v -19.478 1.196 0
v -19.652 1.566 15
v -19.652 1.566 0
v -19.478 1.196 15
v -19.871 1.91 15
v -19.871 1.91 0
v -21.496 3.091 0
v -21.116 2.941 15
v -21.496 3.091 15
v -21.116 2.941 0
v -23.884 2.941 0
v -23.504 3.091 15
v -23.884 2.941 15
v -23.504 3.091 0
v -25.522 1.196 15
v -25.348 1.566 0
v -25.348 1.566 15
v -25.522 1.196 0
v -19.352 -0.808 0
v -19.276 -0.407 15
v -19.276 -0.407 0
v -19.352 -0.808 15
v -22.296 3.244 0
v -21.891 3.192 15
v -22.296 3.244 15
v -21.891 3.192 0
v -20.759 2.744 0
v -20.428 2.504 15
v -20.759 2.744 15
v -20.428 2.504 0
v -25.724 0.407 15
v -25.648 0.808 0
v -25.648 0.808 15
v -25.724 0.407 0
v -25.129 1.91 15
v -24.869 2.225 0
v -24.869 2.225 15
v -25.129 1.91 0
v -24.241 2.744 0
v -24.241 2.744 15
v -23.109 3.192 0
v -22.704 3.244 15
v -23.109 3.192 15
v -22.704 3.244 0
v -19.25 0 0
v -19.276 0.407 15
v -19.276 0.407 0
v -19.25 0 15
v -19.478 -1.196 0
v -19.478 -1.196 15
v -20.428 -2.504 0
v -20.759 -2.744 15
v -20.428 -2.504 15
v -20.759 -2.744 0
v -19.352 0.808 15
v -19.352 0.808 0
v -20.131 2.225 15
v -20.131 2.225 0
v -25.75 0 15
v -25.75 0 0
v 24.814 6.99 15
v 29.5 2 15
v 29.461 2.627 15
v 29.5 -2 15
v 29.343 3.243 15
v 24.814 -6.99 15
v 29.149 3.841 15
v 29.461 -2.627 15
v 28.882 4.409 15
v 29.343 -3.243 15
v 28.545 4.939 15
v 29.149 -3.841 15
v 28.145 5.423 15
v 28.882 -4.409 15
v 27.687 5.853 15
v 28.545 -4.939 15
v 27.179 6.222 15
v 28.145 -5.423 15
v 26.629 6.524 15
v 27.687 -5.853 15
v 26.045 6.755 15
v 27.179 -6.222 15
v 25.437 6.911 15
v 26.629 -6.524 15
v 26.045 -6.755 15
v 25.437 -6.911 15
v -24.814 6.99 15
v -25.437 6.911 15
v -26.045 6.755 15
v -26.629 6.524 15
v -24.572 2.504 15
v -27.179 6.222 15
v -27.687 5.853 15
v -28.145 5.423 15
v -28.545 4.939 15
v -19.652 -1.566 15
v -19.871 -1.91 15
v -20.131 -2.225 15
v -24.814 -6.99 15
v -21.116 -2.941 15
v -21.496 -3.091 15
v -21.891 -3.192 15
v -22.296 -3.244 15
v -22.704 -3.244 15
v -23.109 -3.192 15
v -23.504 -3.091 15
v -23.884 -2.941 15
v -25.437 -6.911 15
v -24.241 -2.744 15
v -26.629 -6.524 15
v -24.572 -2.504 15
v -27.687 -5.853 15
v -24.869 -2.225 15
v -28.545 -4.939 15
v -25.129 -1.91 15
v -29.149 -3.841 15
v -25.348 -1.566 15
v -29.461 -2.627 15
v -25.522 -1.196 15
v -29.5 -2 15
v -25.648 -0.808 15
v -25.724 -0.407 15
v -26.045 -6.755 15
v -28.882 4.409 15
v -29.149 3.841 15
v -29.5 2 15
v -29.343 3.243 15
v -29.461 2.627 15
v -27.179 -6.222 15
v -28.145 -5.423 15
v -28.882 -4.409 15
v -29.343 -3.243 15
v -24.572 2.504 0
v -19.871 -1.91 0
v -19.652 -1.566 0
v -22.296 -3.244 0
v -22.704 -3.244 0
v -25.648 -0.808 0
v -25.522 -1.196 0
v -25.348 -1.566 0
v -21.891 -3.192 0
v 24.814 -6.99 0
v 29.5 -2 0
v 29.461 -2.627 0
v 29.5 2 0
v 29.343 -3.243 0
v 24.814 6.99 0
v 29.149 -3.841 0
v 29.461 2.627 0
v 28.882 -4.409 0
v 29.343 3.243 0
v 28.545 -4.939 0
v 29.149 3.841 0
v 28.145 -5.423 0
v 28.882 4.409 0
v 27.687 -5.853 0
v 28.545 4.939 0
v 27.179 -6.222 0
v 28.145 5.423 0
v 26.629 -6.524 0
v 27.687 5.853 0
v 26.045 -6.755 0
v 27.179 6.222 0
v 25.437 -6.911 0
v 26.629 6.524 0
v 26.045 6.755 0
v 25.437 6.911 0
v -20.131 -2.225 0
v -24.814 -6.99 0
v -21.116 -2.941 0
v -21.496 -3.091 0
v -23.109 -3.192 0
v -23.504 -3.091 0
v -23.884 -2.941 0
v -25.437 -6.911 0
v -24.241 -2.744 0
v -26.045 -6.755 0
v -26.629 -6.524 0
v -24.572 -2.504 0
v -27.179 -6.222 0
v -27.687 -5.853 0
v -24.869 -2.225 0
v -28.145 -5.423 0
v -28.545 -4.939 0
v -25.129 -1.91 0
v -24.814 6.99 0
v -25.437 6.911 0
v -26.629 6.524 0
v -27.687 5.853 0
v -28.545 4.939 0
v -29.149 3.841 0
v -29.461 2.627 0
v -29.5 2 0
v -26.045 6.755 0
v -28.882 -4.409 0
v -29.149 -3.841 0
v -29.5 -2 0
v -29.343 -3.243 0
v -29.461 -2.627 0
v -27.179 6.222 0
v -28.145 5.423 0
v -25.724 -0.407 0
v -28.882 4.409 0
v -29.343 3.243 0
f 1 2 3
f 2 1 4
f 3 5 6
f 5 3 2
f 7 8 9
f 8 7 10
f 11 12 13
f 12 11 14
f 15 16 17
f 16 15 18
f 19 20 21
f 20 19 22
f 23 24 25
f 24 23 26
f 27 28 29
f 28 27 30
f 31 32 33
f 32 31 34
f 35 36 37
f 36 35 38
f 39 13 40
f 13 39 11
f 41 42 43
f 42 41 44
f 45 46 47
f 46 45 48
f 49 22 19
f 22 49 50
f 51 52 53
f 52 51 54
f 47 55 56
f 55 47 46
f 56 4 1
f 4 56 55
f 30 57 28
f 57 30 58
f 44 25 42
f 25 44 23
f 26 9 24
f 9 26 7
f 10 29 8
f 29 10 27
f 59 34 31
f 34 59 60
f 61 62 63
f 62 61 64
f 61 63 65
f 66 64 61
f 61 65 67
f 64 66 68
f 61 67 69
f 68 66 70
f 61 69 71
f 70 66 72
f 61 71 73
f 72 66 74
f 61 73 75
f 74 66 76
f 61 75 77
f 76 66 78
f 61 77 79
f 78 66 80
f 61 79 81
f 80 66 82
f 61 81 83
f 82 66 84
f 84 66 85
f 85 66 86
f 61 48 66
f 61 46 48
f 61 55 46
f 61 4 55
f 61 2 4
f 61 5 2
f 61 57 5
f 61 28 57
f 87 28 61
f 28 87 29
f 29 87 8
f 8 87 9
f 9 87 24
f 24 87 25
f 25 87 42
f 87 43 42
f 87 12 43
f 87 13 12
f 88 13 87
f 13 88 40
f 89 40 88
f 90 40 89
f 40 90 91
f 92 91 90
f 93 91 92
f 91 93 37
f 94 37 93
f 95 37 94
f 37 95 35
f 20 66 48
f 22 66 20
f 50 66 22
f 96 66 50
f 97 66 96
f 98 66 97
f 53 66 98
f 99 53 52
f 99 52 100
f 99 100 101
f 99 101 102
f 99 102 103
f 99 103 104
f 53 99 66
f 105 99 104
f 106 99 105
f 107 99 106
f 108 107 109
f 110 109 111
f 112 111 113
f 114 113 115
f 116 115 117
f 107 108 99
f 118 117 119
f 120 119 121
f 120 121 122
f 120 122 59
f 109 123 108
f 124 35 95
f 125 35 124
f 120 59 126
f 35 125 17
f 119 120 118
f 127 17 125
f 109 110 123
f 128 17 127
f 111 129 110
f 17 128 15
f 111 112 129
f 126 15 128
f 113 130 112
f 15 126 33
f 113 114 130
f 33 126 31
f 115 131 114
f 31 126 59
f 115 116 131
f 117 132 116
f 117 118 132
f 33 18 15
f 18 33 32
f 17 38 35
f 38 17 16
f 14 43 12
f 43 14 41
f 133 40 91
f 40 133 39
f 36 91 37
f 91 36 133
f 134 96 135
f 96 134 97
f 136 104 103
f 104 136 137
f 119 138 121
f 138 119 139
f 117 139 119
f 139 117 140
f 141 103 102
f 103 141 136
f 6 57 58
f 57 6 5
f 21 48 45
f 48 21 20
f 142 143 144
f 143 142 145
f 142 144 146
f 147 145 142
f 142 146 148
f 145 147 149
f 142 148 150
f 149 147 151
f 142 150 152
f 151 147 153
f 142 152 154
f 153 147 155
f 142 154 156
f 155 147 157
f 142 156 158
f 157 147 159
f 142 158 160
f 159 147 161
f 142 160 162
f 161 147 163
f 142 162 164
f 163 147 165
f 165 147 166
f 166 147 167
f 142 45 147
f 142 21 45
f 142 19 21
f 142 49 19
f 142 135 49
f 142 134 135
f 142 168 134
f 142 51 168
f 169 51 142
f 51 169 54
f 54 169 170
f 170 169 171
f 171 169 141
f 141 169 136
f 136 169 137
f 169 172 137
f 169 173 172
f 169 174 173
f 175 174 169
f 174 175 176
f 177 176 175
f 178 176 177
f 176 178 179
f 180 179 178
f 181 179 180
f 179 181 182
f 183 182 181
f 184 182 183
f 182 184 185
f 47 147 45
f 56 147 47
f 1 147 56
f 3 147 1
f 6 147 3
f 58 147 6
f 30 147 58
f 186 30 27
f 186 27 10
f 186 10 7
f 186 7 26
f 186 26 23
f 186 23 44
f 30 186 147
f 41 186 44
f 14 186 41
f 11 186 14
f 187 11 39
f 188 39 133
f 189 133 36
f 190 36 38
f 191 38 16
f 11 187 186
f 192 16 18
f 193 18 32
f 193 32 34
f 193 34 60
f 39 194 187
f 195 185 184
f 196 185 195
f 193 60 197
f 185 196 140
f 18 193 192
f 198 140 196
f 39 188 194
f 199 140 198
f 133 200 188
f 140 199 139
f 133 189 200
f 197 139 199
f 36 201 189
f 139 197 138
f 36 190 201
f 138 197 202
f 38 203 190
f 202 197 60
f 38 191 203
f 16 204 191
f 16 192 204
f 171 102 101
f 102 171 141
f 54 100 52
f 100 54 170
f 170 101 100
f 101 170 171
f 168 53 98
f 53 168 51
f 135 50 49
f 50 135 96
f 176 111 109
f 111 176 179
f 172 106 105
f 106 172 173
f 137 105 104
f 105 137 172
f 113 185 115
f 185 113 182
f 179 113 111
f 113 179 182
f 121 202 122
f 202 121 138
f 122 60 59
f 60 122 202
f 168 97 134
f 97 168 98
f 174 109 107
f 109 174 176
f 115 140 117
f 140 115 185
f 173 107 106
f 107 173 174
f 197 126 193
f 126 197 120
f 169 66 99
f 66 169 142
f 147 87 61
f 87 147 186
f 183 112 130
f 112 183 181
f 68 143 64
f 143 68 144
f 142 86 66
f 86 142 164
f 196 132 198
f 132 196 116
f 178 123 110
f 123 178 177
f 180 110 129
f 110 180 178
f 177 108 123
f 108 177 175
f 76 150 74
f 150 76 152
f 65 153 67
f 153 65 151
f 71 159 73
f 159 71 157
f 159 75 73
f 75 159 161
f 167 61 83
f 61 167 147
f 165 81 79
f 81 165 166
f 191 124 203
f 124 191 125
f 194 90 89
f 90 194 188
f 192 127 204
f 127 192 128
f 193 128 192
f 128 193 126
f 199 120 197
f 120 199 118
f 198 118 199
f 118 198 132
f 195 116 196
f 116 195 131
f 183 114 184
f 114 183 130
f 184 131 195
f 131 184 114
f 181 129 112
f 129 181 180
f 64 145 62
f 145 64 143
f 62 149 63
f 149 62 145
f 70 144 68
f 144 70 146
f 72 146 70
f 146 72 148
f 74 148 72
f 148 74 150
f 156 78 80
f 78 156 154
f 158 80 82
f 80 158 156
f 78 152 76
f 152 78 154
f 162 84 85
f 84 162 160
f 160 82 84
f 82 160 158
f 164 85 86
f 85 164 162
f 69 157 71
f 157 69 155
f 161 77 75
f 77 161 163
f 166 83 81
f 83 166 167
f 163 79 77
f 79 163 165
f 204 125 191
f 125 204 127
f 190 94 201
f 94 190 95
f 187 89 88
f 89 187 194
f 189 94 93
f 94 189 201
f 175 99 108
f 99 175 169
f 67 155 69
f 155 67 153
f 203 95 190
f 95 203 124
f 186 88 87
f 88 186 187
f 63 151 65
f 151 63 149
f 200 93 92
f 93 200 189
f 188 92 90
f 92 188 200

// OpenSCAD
$fn = 50;


difference() {
	union() {
		hull() {
			translate(v = [-24.5000000000, 2.0000000000, 0]) {
				cylinder(h = 15, r = 5);
			}
			translate(v = [24.5000000000, 2.0000000000, 0]) {
				cylinder(h = 15, r = 5);
			}
			translate(v = [-24.5000000000, -2.0000000000, 0]) {
				cylinder(h = 15, r = 5);
			}
			translate(v = [24.5000000000, -2.0000000000, 0]) {
				cylinder(h = 15, r = 5);
			}
		}
	}
	union() {
		translate(v = [-22.5000000000, 0.0000000000, 0]) {
			cylinder(h = 15, r = 3.2500000000);
		}
		translate(v = [-22.5000000000, 0.0000000000, 0]) {
			cylinder(h = 15, r = 1.8000000000);
		}
		translate(v = [-22.5000000000, 0.0000000000, 0]) {
			cylinder(h = 15, r = 1.8000000000);
		}
		translate(v = [-22.5000000000, 0.0000000000, 0]) {
			cylinder(h = 15, r = 1.8000000000);
		}
	}
}
